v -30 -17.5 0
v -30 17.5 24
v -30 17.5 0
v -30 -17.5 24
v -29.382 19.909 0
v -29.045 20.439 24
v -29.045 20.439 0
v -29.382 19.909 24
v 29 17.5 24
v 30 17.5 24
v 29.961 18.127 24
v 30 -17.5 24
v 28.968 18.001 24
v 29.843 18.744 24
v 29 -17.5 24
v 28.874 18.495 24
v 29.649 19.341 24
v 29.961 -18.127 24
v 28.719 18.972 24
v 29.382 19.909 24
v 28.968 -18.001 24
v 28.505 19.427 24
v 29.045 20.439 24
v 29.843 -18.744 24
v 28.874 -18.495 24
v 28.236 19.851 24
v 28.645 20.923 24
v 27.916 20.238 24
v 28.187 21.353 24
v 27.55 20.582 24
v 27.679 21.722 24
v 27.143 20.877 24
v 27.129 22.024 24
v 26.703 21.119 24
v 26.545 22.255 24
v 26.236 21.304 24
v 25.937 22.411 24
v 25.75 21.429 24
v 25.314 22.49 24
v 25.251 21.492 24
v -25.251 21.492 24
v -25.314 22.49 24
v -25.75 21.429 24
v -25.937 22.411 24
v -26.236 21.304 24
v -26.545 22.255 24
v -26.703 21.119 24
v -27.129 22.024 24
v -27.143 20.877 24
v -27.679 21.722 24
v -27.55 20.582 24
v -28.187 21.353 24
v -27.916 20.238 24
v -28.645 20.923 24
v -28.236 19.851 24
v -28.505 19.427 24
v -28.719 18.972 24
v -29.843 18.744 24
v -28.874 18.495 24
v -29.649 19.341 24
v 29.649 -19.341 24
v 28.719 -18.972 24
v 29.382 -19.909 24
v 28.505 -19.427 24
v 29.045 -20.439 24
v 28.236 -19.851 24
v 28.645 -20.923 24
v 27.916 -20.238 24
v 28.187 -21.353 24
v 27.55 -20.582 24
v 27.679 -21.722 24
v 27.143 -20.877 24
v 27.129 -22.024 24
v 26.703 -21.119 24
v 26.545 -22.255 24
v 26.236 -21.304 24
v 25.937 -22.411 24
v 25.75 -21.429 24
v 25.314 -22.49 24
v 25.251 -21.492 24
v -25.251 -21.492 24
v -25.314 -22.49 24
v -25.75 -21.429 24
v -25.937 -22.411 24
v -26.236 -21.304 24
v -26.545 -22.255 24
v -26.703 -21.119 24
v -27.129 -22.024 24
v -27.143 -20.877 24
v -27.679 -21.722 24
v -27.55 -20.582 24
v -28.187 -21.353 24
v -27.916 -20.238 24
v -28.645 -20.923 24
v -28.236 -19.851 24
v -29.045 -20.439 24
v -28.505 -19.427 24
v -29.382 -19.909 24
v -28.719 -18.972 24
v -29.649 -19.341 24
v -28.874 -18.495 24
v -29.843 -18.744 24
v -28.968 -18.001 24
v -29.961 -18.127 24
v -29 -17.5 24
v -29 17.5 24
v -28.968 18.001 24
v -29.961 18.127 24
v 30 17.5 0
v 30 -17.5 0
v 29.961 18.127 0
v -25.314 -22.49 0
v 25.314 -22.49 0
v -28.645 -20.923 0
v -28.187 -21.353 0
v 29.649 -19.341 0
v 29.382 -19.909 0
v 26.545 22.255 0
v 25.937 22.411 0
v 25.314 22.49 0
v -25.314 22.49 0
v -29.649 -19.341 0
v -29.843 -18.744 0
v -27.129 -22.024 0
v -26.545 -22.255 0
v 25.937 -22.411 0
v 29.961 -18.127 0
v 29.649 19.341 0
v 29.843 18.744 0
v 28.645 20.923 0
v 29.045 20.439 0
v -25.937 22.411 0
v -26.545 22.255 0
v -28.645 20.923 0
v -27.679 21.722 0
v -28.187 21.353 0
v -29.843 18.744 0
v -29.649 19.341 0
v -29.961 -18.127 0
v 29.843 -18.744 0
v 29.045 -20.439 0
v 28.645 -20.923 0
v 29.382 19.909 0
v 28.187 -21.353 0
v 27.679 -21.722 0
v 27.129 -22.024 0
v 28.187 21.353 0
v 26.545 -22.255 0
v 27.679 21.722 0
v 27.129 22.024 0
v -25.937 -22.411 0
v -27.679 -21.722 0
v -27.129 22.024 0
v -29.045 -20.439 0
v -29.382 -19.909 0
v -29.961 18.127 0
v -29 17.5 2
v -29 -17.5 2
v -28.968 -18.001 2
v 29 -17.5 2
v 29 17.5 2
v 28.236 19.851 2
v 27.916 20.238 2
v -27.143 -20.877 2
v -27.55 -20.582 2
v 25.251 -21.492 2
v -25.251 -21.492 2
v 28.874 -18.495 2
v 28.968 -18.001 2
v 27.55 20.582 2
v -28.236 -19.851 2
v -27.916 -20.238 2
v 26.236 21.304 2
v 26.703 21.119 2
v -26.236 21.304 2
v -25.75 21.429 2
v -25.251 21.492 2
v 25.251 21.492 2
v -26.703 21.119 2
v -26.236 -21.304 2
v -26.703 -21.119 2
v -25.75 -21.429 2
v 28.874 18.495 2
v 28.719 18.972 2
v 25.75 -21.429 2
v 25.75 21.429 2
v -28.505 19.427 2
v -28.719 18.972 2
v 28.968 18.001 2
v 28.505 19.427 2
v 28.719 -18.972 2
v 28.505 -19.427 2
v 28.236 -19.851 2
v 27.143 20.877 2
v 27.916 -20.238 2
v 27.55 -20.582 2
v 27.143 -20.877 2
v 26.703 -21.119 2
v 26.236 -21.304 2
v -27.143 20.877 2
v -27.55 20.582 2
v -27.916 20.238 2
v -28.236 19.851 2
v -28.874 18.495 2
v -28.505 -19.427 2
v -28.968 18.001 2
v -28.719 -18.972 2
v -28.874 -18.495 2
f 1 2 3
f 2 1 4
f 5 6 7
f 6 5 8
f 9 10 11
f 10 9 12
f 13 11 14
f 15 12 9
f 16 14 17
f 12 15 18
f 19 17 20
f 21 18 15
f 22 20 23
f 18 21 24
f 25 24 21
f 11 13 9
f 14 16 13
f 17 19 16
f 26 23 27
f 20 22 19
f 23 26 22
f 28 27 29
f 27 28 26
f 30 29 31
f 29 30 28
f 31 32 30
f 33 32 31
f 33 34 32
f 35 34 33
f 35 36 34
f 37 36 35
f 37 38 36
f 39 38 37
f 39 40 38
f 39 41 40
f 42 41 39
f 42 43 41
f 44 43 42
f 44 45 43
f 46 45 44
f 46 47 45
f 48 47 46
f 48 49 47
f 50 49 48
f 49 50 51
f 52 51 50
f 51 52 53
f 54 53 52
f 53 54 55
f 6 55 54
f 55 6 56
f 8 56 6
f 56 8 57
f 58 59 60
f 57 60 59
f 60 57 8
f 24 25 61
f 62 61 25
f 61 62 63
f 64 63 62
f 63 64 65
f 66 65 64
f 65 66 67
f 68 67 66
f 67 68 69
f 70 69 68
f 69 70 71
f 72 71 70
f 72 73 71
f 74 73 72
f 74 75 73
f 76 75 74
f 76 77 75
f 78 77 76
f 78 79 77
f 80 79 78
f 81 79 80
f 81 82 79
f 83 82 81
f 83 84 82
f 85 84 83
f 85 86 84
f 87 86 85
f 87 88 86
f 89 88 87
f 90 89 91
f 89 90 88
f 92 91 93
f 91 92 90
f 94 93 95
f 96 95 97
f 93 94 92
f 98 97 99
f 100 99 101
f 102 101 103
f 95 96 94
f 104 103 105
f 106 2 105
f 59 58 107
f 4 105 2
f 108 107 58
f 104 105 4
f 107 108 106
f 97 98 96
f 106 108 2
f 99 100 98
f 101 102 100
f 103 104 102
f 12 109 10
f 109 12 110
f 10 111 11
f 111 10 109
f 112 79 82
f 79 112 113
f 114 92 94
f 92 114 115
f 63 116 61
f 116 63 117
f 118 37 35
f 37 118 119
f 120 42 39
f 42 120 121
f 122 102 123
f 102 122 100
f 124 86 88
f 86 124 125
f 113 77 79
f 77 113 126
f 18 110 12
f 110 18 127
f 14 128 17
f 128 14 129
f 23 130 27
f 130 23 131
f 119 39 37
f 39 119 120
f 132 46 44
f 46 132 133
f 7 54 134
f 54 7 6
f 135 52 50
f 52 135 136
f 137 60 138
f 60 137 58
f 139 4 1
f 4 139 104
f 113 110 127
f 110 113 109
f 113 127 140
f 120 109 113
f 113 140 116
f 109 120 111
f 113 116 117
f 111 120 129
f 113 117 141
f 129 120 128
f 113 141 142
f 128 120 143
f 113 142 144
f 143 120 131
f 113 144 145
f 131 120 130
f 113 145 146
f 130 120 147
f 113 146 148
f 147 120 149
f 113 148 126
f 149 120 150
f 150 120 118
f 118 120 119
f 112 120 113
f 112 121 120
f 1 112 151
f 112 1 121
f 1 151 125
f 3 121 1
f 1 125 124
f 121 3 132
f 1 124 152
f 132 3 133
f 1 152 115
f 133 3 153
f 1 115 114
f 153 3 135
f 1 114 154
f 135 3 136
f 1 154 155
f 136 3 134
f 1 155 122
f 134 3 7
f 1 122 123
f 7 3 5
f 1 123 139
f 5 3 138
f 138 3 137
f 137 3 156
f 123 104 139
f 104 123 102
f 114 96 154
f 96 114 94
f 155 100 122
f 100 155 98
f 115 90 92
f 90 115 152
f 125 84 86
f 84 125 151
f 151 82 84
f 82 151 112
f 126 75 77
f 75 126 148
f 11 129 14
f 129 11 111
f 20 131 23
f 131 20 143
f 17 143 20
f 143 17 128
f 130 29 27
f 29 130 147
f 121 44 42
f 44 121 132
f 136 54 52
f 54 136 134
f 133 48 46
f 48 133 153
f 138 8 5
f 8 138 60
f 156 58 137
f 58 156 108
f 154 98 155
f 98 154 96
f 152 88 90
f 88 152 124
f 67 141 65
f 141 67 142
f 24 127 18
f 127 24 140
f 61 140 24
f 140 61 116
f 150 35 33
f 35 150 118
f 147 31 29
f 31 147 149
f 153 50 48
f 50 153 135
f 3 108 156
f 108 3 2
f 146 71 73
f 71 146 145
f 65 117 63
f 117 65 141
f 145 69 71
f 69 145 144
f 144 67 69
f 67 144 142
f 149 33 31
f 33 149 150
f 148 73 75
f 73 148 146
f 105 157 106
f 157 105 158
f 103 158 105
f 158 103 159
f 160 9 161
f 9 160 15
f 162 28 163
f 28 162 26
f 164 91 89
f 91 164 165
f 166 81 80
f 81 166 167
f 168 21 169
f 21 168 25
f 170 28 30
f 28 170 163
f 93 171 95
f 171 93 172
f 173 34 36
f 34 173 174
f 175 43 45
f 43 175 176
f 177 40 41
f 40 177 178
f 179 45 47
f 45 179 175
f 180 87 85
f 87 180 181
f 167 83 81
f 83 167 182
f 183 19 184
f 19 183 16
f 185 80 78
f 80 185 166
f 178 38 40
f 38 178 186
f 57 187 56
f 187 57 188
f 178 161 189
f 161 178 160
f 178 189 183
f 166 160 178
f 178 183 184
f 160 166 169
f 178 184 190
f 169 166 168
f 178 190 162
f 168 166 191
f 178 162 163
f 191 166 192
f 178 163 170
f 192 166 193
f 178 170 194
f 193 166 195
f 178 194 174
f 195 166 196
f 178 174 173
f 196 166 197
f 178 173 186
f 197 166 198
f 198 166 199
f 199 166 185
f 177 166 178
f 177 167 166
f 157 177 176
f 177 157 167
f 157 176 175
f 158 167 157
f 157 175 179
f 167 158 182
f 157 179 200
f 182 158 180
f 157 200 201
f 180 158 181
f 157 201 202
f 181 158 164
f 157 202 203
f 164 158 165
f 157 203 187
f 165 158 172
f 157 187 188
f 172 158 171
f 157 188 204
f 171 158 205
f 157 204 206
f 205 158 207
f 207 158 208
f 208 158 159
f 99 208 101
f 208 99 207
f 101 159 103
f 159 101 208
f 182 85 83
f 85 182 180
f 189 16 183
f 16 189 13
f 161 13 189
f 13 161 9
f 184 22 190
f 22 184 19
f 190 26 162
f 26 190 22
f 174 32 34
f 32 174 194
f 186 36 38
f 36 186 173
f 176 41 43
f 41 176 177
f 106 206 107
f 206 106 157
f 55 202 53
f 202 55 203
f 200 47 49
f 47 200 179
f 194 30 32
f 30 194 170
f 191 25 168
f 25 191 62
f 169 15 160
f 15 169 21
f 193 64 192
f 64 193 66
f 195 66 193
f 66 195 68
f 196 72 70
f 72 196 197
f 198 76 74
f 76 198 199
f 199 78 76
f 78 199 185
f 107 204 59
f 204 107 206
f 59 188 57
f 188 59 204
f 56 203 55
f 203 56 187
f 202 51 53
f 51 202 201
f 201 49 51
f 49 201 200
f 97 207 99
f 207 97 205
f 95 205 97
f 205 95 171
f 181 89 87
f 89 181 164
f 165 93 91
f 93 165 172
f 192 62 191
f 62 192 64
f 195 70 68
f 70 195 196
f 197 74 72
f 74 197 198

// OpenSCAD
$fn = 50;


difference() {
	union() {
		hull() {
			translate(v = [-25.0000000000, 17.5000000000, 0]) {
				cylinder(h = 24, r = 5);
			}
			translate(v = [25.0000000000, 17.5000000000, 0]) {
				cylinder(h = 24, r = 5);
			}
			translate(v = [-25.0000000000, -17.5000000000, 0]) {
				cylinder(h = 24, r = 5);
			}
			translate(v = [25.0000000000, -17.5000000000, 0]) {
				cylinder(h = 24, r = 5);
			}
		}
	}
	union() {
		translate(v = [0, 0, 2]) {
			hull() {
				translate(v = [-25.0000000000, 17.5000000000, 0]) {
					cylinder(h = 22, r = 4);
				}
				translate(v = [25.0000000000, 17.5000000000, 0]) {
					cylinder(h = 22, r = 4);
				}
				translate(v = [-25.0000000000, -17.5000000000, 0]) {
					cylinder(h = 22, r = 4);
				}
				translate(v = [25.0000000000, -17.5000000000, 0]) {
					cylinder(h = 22, r = 4);
				}
			}
		}
	}
}
